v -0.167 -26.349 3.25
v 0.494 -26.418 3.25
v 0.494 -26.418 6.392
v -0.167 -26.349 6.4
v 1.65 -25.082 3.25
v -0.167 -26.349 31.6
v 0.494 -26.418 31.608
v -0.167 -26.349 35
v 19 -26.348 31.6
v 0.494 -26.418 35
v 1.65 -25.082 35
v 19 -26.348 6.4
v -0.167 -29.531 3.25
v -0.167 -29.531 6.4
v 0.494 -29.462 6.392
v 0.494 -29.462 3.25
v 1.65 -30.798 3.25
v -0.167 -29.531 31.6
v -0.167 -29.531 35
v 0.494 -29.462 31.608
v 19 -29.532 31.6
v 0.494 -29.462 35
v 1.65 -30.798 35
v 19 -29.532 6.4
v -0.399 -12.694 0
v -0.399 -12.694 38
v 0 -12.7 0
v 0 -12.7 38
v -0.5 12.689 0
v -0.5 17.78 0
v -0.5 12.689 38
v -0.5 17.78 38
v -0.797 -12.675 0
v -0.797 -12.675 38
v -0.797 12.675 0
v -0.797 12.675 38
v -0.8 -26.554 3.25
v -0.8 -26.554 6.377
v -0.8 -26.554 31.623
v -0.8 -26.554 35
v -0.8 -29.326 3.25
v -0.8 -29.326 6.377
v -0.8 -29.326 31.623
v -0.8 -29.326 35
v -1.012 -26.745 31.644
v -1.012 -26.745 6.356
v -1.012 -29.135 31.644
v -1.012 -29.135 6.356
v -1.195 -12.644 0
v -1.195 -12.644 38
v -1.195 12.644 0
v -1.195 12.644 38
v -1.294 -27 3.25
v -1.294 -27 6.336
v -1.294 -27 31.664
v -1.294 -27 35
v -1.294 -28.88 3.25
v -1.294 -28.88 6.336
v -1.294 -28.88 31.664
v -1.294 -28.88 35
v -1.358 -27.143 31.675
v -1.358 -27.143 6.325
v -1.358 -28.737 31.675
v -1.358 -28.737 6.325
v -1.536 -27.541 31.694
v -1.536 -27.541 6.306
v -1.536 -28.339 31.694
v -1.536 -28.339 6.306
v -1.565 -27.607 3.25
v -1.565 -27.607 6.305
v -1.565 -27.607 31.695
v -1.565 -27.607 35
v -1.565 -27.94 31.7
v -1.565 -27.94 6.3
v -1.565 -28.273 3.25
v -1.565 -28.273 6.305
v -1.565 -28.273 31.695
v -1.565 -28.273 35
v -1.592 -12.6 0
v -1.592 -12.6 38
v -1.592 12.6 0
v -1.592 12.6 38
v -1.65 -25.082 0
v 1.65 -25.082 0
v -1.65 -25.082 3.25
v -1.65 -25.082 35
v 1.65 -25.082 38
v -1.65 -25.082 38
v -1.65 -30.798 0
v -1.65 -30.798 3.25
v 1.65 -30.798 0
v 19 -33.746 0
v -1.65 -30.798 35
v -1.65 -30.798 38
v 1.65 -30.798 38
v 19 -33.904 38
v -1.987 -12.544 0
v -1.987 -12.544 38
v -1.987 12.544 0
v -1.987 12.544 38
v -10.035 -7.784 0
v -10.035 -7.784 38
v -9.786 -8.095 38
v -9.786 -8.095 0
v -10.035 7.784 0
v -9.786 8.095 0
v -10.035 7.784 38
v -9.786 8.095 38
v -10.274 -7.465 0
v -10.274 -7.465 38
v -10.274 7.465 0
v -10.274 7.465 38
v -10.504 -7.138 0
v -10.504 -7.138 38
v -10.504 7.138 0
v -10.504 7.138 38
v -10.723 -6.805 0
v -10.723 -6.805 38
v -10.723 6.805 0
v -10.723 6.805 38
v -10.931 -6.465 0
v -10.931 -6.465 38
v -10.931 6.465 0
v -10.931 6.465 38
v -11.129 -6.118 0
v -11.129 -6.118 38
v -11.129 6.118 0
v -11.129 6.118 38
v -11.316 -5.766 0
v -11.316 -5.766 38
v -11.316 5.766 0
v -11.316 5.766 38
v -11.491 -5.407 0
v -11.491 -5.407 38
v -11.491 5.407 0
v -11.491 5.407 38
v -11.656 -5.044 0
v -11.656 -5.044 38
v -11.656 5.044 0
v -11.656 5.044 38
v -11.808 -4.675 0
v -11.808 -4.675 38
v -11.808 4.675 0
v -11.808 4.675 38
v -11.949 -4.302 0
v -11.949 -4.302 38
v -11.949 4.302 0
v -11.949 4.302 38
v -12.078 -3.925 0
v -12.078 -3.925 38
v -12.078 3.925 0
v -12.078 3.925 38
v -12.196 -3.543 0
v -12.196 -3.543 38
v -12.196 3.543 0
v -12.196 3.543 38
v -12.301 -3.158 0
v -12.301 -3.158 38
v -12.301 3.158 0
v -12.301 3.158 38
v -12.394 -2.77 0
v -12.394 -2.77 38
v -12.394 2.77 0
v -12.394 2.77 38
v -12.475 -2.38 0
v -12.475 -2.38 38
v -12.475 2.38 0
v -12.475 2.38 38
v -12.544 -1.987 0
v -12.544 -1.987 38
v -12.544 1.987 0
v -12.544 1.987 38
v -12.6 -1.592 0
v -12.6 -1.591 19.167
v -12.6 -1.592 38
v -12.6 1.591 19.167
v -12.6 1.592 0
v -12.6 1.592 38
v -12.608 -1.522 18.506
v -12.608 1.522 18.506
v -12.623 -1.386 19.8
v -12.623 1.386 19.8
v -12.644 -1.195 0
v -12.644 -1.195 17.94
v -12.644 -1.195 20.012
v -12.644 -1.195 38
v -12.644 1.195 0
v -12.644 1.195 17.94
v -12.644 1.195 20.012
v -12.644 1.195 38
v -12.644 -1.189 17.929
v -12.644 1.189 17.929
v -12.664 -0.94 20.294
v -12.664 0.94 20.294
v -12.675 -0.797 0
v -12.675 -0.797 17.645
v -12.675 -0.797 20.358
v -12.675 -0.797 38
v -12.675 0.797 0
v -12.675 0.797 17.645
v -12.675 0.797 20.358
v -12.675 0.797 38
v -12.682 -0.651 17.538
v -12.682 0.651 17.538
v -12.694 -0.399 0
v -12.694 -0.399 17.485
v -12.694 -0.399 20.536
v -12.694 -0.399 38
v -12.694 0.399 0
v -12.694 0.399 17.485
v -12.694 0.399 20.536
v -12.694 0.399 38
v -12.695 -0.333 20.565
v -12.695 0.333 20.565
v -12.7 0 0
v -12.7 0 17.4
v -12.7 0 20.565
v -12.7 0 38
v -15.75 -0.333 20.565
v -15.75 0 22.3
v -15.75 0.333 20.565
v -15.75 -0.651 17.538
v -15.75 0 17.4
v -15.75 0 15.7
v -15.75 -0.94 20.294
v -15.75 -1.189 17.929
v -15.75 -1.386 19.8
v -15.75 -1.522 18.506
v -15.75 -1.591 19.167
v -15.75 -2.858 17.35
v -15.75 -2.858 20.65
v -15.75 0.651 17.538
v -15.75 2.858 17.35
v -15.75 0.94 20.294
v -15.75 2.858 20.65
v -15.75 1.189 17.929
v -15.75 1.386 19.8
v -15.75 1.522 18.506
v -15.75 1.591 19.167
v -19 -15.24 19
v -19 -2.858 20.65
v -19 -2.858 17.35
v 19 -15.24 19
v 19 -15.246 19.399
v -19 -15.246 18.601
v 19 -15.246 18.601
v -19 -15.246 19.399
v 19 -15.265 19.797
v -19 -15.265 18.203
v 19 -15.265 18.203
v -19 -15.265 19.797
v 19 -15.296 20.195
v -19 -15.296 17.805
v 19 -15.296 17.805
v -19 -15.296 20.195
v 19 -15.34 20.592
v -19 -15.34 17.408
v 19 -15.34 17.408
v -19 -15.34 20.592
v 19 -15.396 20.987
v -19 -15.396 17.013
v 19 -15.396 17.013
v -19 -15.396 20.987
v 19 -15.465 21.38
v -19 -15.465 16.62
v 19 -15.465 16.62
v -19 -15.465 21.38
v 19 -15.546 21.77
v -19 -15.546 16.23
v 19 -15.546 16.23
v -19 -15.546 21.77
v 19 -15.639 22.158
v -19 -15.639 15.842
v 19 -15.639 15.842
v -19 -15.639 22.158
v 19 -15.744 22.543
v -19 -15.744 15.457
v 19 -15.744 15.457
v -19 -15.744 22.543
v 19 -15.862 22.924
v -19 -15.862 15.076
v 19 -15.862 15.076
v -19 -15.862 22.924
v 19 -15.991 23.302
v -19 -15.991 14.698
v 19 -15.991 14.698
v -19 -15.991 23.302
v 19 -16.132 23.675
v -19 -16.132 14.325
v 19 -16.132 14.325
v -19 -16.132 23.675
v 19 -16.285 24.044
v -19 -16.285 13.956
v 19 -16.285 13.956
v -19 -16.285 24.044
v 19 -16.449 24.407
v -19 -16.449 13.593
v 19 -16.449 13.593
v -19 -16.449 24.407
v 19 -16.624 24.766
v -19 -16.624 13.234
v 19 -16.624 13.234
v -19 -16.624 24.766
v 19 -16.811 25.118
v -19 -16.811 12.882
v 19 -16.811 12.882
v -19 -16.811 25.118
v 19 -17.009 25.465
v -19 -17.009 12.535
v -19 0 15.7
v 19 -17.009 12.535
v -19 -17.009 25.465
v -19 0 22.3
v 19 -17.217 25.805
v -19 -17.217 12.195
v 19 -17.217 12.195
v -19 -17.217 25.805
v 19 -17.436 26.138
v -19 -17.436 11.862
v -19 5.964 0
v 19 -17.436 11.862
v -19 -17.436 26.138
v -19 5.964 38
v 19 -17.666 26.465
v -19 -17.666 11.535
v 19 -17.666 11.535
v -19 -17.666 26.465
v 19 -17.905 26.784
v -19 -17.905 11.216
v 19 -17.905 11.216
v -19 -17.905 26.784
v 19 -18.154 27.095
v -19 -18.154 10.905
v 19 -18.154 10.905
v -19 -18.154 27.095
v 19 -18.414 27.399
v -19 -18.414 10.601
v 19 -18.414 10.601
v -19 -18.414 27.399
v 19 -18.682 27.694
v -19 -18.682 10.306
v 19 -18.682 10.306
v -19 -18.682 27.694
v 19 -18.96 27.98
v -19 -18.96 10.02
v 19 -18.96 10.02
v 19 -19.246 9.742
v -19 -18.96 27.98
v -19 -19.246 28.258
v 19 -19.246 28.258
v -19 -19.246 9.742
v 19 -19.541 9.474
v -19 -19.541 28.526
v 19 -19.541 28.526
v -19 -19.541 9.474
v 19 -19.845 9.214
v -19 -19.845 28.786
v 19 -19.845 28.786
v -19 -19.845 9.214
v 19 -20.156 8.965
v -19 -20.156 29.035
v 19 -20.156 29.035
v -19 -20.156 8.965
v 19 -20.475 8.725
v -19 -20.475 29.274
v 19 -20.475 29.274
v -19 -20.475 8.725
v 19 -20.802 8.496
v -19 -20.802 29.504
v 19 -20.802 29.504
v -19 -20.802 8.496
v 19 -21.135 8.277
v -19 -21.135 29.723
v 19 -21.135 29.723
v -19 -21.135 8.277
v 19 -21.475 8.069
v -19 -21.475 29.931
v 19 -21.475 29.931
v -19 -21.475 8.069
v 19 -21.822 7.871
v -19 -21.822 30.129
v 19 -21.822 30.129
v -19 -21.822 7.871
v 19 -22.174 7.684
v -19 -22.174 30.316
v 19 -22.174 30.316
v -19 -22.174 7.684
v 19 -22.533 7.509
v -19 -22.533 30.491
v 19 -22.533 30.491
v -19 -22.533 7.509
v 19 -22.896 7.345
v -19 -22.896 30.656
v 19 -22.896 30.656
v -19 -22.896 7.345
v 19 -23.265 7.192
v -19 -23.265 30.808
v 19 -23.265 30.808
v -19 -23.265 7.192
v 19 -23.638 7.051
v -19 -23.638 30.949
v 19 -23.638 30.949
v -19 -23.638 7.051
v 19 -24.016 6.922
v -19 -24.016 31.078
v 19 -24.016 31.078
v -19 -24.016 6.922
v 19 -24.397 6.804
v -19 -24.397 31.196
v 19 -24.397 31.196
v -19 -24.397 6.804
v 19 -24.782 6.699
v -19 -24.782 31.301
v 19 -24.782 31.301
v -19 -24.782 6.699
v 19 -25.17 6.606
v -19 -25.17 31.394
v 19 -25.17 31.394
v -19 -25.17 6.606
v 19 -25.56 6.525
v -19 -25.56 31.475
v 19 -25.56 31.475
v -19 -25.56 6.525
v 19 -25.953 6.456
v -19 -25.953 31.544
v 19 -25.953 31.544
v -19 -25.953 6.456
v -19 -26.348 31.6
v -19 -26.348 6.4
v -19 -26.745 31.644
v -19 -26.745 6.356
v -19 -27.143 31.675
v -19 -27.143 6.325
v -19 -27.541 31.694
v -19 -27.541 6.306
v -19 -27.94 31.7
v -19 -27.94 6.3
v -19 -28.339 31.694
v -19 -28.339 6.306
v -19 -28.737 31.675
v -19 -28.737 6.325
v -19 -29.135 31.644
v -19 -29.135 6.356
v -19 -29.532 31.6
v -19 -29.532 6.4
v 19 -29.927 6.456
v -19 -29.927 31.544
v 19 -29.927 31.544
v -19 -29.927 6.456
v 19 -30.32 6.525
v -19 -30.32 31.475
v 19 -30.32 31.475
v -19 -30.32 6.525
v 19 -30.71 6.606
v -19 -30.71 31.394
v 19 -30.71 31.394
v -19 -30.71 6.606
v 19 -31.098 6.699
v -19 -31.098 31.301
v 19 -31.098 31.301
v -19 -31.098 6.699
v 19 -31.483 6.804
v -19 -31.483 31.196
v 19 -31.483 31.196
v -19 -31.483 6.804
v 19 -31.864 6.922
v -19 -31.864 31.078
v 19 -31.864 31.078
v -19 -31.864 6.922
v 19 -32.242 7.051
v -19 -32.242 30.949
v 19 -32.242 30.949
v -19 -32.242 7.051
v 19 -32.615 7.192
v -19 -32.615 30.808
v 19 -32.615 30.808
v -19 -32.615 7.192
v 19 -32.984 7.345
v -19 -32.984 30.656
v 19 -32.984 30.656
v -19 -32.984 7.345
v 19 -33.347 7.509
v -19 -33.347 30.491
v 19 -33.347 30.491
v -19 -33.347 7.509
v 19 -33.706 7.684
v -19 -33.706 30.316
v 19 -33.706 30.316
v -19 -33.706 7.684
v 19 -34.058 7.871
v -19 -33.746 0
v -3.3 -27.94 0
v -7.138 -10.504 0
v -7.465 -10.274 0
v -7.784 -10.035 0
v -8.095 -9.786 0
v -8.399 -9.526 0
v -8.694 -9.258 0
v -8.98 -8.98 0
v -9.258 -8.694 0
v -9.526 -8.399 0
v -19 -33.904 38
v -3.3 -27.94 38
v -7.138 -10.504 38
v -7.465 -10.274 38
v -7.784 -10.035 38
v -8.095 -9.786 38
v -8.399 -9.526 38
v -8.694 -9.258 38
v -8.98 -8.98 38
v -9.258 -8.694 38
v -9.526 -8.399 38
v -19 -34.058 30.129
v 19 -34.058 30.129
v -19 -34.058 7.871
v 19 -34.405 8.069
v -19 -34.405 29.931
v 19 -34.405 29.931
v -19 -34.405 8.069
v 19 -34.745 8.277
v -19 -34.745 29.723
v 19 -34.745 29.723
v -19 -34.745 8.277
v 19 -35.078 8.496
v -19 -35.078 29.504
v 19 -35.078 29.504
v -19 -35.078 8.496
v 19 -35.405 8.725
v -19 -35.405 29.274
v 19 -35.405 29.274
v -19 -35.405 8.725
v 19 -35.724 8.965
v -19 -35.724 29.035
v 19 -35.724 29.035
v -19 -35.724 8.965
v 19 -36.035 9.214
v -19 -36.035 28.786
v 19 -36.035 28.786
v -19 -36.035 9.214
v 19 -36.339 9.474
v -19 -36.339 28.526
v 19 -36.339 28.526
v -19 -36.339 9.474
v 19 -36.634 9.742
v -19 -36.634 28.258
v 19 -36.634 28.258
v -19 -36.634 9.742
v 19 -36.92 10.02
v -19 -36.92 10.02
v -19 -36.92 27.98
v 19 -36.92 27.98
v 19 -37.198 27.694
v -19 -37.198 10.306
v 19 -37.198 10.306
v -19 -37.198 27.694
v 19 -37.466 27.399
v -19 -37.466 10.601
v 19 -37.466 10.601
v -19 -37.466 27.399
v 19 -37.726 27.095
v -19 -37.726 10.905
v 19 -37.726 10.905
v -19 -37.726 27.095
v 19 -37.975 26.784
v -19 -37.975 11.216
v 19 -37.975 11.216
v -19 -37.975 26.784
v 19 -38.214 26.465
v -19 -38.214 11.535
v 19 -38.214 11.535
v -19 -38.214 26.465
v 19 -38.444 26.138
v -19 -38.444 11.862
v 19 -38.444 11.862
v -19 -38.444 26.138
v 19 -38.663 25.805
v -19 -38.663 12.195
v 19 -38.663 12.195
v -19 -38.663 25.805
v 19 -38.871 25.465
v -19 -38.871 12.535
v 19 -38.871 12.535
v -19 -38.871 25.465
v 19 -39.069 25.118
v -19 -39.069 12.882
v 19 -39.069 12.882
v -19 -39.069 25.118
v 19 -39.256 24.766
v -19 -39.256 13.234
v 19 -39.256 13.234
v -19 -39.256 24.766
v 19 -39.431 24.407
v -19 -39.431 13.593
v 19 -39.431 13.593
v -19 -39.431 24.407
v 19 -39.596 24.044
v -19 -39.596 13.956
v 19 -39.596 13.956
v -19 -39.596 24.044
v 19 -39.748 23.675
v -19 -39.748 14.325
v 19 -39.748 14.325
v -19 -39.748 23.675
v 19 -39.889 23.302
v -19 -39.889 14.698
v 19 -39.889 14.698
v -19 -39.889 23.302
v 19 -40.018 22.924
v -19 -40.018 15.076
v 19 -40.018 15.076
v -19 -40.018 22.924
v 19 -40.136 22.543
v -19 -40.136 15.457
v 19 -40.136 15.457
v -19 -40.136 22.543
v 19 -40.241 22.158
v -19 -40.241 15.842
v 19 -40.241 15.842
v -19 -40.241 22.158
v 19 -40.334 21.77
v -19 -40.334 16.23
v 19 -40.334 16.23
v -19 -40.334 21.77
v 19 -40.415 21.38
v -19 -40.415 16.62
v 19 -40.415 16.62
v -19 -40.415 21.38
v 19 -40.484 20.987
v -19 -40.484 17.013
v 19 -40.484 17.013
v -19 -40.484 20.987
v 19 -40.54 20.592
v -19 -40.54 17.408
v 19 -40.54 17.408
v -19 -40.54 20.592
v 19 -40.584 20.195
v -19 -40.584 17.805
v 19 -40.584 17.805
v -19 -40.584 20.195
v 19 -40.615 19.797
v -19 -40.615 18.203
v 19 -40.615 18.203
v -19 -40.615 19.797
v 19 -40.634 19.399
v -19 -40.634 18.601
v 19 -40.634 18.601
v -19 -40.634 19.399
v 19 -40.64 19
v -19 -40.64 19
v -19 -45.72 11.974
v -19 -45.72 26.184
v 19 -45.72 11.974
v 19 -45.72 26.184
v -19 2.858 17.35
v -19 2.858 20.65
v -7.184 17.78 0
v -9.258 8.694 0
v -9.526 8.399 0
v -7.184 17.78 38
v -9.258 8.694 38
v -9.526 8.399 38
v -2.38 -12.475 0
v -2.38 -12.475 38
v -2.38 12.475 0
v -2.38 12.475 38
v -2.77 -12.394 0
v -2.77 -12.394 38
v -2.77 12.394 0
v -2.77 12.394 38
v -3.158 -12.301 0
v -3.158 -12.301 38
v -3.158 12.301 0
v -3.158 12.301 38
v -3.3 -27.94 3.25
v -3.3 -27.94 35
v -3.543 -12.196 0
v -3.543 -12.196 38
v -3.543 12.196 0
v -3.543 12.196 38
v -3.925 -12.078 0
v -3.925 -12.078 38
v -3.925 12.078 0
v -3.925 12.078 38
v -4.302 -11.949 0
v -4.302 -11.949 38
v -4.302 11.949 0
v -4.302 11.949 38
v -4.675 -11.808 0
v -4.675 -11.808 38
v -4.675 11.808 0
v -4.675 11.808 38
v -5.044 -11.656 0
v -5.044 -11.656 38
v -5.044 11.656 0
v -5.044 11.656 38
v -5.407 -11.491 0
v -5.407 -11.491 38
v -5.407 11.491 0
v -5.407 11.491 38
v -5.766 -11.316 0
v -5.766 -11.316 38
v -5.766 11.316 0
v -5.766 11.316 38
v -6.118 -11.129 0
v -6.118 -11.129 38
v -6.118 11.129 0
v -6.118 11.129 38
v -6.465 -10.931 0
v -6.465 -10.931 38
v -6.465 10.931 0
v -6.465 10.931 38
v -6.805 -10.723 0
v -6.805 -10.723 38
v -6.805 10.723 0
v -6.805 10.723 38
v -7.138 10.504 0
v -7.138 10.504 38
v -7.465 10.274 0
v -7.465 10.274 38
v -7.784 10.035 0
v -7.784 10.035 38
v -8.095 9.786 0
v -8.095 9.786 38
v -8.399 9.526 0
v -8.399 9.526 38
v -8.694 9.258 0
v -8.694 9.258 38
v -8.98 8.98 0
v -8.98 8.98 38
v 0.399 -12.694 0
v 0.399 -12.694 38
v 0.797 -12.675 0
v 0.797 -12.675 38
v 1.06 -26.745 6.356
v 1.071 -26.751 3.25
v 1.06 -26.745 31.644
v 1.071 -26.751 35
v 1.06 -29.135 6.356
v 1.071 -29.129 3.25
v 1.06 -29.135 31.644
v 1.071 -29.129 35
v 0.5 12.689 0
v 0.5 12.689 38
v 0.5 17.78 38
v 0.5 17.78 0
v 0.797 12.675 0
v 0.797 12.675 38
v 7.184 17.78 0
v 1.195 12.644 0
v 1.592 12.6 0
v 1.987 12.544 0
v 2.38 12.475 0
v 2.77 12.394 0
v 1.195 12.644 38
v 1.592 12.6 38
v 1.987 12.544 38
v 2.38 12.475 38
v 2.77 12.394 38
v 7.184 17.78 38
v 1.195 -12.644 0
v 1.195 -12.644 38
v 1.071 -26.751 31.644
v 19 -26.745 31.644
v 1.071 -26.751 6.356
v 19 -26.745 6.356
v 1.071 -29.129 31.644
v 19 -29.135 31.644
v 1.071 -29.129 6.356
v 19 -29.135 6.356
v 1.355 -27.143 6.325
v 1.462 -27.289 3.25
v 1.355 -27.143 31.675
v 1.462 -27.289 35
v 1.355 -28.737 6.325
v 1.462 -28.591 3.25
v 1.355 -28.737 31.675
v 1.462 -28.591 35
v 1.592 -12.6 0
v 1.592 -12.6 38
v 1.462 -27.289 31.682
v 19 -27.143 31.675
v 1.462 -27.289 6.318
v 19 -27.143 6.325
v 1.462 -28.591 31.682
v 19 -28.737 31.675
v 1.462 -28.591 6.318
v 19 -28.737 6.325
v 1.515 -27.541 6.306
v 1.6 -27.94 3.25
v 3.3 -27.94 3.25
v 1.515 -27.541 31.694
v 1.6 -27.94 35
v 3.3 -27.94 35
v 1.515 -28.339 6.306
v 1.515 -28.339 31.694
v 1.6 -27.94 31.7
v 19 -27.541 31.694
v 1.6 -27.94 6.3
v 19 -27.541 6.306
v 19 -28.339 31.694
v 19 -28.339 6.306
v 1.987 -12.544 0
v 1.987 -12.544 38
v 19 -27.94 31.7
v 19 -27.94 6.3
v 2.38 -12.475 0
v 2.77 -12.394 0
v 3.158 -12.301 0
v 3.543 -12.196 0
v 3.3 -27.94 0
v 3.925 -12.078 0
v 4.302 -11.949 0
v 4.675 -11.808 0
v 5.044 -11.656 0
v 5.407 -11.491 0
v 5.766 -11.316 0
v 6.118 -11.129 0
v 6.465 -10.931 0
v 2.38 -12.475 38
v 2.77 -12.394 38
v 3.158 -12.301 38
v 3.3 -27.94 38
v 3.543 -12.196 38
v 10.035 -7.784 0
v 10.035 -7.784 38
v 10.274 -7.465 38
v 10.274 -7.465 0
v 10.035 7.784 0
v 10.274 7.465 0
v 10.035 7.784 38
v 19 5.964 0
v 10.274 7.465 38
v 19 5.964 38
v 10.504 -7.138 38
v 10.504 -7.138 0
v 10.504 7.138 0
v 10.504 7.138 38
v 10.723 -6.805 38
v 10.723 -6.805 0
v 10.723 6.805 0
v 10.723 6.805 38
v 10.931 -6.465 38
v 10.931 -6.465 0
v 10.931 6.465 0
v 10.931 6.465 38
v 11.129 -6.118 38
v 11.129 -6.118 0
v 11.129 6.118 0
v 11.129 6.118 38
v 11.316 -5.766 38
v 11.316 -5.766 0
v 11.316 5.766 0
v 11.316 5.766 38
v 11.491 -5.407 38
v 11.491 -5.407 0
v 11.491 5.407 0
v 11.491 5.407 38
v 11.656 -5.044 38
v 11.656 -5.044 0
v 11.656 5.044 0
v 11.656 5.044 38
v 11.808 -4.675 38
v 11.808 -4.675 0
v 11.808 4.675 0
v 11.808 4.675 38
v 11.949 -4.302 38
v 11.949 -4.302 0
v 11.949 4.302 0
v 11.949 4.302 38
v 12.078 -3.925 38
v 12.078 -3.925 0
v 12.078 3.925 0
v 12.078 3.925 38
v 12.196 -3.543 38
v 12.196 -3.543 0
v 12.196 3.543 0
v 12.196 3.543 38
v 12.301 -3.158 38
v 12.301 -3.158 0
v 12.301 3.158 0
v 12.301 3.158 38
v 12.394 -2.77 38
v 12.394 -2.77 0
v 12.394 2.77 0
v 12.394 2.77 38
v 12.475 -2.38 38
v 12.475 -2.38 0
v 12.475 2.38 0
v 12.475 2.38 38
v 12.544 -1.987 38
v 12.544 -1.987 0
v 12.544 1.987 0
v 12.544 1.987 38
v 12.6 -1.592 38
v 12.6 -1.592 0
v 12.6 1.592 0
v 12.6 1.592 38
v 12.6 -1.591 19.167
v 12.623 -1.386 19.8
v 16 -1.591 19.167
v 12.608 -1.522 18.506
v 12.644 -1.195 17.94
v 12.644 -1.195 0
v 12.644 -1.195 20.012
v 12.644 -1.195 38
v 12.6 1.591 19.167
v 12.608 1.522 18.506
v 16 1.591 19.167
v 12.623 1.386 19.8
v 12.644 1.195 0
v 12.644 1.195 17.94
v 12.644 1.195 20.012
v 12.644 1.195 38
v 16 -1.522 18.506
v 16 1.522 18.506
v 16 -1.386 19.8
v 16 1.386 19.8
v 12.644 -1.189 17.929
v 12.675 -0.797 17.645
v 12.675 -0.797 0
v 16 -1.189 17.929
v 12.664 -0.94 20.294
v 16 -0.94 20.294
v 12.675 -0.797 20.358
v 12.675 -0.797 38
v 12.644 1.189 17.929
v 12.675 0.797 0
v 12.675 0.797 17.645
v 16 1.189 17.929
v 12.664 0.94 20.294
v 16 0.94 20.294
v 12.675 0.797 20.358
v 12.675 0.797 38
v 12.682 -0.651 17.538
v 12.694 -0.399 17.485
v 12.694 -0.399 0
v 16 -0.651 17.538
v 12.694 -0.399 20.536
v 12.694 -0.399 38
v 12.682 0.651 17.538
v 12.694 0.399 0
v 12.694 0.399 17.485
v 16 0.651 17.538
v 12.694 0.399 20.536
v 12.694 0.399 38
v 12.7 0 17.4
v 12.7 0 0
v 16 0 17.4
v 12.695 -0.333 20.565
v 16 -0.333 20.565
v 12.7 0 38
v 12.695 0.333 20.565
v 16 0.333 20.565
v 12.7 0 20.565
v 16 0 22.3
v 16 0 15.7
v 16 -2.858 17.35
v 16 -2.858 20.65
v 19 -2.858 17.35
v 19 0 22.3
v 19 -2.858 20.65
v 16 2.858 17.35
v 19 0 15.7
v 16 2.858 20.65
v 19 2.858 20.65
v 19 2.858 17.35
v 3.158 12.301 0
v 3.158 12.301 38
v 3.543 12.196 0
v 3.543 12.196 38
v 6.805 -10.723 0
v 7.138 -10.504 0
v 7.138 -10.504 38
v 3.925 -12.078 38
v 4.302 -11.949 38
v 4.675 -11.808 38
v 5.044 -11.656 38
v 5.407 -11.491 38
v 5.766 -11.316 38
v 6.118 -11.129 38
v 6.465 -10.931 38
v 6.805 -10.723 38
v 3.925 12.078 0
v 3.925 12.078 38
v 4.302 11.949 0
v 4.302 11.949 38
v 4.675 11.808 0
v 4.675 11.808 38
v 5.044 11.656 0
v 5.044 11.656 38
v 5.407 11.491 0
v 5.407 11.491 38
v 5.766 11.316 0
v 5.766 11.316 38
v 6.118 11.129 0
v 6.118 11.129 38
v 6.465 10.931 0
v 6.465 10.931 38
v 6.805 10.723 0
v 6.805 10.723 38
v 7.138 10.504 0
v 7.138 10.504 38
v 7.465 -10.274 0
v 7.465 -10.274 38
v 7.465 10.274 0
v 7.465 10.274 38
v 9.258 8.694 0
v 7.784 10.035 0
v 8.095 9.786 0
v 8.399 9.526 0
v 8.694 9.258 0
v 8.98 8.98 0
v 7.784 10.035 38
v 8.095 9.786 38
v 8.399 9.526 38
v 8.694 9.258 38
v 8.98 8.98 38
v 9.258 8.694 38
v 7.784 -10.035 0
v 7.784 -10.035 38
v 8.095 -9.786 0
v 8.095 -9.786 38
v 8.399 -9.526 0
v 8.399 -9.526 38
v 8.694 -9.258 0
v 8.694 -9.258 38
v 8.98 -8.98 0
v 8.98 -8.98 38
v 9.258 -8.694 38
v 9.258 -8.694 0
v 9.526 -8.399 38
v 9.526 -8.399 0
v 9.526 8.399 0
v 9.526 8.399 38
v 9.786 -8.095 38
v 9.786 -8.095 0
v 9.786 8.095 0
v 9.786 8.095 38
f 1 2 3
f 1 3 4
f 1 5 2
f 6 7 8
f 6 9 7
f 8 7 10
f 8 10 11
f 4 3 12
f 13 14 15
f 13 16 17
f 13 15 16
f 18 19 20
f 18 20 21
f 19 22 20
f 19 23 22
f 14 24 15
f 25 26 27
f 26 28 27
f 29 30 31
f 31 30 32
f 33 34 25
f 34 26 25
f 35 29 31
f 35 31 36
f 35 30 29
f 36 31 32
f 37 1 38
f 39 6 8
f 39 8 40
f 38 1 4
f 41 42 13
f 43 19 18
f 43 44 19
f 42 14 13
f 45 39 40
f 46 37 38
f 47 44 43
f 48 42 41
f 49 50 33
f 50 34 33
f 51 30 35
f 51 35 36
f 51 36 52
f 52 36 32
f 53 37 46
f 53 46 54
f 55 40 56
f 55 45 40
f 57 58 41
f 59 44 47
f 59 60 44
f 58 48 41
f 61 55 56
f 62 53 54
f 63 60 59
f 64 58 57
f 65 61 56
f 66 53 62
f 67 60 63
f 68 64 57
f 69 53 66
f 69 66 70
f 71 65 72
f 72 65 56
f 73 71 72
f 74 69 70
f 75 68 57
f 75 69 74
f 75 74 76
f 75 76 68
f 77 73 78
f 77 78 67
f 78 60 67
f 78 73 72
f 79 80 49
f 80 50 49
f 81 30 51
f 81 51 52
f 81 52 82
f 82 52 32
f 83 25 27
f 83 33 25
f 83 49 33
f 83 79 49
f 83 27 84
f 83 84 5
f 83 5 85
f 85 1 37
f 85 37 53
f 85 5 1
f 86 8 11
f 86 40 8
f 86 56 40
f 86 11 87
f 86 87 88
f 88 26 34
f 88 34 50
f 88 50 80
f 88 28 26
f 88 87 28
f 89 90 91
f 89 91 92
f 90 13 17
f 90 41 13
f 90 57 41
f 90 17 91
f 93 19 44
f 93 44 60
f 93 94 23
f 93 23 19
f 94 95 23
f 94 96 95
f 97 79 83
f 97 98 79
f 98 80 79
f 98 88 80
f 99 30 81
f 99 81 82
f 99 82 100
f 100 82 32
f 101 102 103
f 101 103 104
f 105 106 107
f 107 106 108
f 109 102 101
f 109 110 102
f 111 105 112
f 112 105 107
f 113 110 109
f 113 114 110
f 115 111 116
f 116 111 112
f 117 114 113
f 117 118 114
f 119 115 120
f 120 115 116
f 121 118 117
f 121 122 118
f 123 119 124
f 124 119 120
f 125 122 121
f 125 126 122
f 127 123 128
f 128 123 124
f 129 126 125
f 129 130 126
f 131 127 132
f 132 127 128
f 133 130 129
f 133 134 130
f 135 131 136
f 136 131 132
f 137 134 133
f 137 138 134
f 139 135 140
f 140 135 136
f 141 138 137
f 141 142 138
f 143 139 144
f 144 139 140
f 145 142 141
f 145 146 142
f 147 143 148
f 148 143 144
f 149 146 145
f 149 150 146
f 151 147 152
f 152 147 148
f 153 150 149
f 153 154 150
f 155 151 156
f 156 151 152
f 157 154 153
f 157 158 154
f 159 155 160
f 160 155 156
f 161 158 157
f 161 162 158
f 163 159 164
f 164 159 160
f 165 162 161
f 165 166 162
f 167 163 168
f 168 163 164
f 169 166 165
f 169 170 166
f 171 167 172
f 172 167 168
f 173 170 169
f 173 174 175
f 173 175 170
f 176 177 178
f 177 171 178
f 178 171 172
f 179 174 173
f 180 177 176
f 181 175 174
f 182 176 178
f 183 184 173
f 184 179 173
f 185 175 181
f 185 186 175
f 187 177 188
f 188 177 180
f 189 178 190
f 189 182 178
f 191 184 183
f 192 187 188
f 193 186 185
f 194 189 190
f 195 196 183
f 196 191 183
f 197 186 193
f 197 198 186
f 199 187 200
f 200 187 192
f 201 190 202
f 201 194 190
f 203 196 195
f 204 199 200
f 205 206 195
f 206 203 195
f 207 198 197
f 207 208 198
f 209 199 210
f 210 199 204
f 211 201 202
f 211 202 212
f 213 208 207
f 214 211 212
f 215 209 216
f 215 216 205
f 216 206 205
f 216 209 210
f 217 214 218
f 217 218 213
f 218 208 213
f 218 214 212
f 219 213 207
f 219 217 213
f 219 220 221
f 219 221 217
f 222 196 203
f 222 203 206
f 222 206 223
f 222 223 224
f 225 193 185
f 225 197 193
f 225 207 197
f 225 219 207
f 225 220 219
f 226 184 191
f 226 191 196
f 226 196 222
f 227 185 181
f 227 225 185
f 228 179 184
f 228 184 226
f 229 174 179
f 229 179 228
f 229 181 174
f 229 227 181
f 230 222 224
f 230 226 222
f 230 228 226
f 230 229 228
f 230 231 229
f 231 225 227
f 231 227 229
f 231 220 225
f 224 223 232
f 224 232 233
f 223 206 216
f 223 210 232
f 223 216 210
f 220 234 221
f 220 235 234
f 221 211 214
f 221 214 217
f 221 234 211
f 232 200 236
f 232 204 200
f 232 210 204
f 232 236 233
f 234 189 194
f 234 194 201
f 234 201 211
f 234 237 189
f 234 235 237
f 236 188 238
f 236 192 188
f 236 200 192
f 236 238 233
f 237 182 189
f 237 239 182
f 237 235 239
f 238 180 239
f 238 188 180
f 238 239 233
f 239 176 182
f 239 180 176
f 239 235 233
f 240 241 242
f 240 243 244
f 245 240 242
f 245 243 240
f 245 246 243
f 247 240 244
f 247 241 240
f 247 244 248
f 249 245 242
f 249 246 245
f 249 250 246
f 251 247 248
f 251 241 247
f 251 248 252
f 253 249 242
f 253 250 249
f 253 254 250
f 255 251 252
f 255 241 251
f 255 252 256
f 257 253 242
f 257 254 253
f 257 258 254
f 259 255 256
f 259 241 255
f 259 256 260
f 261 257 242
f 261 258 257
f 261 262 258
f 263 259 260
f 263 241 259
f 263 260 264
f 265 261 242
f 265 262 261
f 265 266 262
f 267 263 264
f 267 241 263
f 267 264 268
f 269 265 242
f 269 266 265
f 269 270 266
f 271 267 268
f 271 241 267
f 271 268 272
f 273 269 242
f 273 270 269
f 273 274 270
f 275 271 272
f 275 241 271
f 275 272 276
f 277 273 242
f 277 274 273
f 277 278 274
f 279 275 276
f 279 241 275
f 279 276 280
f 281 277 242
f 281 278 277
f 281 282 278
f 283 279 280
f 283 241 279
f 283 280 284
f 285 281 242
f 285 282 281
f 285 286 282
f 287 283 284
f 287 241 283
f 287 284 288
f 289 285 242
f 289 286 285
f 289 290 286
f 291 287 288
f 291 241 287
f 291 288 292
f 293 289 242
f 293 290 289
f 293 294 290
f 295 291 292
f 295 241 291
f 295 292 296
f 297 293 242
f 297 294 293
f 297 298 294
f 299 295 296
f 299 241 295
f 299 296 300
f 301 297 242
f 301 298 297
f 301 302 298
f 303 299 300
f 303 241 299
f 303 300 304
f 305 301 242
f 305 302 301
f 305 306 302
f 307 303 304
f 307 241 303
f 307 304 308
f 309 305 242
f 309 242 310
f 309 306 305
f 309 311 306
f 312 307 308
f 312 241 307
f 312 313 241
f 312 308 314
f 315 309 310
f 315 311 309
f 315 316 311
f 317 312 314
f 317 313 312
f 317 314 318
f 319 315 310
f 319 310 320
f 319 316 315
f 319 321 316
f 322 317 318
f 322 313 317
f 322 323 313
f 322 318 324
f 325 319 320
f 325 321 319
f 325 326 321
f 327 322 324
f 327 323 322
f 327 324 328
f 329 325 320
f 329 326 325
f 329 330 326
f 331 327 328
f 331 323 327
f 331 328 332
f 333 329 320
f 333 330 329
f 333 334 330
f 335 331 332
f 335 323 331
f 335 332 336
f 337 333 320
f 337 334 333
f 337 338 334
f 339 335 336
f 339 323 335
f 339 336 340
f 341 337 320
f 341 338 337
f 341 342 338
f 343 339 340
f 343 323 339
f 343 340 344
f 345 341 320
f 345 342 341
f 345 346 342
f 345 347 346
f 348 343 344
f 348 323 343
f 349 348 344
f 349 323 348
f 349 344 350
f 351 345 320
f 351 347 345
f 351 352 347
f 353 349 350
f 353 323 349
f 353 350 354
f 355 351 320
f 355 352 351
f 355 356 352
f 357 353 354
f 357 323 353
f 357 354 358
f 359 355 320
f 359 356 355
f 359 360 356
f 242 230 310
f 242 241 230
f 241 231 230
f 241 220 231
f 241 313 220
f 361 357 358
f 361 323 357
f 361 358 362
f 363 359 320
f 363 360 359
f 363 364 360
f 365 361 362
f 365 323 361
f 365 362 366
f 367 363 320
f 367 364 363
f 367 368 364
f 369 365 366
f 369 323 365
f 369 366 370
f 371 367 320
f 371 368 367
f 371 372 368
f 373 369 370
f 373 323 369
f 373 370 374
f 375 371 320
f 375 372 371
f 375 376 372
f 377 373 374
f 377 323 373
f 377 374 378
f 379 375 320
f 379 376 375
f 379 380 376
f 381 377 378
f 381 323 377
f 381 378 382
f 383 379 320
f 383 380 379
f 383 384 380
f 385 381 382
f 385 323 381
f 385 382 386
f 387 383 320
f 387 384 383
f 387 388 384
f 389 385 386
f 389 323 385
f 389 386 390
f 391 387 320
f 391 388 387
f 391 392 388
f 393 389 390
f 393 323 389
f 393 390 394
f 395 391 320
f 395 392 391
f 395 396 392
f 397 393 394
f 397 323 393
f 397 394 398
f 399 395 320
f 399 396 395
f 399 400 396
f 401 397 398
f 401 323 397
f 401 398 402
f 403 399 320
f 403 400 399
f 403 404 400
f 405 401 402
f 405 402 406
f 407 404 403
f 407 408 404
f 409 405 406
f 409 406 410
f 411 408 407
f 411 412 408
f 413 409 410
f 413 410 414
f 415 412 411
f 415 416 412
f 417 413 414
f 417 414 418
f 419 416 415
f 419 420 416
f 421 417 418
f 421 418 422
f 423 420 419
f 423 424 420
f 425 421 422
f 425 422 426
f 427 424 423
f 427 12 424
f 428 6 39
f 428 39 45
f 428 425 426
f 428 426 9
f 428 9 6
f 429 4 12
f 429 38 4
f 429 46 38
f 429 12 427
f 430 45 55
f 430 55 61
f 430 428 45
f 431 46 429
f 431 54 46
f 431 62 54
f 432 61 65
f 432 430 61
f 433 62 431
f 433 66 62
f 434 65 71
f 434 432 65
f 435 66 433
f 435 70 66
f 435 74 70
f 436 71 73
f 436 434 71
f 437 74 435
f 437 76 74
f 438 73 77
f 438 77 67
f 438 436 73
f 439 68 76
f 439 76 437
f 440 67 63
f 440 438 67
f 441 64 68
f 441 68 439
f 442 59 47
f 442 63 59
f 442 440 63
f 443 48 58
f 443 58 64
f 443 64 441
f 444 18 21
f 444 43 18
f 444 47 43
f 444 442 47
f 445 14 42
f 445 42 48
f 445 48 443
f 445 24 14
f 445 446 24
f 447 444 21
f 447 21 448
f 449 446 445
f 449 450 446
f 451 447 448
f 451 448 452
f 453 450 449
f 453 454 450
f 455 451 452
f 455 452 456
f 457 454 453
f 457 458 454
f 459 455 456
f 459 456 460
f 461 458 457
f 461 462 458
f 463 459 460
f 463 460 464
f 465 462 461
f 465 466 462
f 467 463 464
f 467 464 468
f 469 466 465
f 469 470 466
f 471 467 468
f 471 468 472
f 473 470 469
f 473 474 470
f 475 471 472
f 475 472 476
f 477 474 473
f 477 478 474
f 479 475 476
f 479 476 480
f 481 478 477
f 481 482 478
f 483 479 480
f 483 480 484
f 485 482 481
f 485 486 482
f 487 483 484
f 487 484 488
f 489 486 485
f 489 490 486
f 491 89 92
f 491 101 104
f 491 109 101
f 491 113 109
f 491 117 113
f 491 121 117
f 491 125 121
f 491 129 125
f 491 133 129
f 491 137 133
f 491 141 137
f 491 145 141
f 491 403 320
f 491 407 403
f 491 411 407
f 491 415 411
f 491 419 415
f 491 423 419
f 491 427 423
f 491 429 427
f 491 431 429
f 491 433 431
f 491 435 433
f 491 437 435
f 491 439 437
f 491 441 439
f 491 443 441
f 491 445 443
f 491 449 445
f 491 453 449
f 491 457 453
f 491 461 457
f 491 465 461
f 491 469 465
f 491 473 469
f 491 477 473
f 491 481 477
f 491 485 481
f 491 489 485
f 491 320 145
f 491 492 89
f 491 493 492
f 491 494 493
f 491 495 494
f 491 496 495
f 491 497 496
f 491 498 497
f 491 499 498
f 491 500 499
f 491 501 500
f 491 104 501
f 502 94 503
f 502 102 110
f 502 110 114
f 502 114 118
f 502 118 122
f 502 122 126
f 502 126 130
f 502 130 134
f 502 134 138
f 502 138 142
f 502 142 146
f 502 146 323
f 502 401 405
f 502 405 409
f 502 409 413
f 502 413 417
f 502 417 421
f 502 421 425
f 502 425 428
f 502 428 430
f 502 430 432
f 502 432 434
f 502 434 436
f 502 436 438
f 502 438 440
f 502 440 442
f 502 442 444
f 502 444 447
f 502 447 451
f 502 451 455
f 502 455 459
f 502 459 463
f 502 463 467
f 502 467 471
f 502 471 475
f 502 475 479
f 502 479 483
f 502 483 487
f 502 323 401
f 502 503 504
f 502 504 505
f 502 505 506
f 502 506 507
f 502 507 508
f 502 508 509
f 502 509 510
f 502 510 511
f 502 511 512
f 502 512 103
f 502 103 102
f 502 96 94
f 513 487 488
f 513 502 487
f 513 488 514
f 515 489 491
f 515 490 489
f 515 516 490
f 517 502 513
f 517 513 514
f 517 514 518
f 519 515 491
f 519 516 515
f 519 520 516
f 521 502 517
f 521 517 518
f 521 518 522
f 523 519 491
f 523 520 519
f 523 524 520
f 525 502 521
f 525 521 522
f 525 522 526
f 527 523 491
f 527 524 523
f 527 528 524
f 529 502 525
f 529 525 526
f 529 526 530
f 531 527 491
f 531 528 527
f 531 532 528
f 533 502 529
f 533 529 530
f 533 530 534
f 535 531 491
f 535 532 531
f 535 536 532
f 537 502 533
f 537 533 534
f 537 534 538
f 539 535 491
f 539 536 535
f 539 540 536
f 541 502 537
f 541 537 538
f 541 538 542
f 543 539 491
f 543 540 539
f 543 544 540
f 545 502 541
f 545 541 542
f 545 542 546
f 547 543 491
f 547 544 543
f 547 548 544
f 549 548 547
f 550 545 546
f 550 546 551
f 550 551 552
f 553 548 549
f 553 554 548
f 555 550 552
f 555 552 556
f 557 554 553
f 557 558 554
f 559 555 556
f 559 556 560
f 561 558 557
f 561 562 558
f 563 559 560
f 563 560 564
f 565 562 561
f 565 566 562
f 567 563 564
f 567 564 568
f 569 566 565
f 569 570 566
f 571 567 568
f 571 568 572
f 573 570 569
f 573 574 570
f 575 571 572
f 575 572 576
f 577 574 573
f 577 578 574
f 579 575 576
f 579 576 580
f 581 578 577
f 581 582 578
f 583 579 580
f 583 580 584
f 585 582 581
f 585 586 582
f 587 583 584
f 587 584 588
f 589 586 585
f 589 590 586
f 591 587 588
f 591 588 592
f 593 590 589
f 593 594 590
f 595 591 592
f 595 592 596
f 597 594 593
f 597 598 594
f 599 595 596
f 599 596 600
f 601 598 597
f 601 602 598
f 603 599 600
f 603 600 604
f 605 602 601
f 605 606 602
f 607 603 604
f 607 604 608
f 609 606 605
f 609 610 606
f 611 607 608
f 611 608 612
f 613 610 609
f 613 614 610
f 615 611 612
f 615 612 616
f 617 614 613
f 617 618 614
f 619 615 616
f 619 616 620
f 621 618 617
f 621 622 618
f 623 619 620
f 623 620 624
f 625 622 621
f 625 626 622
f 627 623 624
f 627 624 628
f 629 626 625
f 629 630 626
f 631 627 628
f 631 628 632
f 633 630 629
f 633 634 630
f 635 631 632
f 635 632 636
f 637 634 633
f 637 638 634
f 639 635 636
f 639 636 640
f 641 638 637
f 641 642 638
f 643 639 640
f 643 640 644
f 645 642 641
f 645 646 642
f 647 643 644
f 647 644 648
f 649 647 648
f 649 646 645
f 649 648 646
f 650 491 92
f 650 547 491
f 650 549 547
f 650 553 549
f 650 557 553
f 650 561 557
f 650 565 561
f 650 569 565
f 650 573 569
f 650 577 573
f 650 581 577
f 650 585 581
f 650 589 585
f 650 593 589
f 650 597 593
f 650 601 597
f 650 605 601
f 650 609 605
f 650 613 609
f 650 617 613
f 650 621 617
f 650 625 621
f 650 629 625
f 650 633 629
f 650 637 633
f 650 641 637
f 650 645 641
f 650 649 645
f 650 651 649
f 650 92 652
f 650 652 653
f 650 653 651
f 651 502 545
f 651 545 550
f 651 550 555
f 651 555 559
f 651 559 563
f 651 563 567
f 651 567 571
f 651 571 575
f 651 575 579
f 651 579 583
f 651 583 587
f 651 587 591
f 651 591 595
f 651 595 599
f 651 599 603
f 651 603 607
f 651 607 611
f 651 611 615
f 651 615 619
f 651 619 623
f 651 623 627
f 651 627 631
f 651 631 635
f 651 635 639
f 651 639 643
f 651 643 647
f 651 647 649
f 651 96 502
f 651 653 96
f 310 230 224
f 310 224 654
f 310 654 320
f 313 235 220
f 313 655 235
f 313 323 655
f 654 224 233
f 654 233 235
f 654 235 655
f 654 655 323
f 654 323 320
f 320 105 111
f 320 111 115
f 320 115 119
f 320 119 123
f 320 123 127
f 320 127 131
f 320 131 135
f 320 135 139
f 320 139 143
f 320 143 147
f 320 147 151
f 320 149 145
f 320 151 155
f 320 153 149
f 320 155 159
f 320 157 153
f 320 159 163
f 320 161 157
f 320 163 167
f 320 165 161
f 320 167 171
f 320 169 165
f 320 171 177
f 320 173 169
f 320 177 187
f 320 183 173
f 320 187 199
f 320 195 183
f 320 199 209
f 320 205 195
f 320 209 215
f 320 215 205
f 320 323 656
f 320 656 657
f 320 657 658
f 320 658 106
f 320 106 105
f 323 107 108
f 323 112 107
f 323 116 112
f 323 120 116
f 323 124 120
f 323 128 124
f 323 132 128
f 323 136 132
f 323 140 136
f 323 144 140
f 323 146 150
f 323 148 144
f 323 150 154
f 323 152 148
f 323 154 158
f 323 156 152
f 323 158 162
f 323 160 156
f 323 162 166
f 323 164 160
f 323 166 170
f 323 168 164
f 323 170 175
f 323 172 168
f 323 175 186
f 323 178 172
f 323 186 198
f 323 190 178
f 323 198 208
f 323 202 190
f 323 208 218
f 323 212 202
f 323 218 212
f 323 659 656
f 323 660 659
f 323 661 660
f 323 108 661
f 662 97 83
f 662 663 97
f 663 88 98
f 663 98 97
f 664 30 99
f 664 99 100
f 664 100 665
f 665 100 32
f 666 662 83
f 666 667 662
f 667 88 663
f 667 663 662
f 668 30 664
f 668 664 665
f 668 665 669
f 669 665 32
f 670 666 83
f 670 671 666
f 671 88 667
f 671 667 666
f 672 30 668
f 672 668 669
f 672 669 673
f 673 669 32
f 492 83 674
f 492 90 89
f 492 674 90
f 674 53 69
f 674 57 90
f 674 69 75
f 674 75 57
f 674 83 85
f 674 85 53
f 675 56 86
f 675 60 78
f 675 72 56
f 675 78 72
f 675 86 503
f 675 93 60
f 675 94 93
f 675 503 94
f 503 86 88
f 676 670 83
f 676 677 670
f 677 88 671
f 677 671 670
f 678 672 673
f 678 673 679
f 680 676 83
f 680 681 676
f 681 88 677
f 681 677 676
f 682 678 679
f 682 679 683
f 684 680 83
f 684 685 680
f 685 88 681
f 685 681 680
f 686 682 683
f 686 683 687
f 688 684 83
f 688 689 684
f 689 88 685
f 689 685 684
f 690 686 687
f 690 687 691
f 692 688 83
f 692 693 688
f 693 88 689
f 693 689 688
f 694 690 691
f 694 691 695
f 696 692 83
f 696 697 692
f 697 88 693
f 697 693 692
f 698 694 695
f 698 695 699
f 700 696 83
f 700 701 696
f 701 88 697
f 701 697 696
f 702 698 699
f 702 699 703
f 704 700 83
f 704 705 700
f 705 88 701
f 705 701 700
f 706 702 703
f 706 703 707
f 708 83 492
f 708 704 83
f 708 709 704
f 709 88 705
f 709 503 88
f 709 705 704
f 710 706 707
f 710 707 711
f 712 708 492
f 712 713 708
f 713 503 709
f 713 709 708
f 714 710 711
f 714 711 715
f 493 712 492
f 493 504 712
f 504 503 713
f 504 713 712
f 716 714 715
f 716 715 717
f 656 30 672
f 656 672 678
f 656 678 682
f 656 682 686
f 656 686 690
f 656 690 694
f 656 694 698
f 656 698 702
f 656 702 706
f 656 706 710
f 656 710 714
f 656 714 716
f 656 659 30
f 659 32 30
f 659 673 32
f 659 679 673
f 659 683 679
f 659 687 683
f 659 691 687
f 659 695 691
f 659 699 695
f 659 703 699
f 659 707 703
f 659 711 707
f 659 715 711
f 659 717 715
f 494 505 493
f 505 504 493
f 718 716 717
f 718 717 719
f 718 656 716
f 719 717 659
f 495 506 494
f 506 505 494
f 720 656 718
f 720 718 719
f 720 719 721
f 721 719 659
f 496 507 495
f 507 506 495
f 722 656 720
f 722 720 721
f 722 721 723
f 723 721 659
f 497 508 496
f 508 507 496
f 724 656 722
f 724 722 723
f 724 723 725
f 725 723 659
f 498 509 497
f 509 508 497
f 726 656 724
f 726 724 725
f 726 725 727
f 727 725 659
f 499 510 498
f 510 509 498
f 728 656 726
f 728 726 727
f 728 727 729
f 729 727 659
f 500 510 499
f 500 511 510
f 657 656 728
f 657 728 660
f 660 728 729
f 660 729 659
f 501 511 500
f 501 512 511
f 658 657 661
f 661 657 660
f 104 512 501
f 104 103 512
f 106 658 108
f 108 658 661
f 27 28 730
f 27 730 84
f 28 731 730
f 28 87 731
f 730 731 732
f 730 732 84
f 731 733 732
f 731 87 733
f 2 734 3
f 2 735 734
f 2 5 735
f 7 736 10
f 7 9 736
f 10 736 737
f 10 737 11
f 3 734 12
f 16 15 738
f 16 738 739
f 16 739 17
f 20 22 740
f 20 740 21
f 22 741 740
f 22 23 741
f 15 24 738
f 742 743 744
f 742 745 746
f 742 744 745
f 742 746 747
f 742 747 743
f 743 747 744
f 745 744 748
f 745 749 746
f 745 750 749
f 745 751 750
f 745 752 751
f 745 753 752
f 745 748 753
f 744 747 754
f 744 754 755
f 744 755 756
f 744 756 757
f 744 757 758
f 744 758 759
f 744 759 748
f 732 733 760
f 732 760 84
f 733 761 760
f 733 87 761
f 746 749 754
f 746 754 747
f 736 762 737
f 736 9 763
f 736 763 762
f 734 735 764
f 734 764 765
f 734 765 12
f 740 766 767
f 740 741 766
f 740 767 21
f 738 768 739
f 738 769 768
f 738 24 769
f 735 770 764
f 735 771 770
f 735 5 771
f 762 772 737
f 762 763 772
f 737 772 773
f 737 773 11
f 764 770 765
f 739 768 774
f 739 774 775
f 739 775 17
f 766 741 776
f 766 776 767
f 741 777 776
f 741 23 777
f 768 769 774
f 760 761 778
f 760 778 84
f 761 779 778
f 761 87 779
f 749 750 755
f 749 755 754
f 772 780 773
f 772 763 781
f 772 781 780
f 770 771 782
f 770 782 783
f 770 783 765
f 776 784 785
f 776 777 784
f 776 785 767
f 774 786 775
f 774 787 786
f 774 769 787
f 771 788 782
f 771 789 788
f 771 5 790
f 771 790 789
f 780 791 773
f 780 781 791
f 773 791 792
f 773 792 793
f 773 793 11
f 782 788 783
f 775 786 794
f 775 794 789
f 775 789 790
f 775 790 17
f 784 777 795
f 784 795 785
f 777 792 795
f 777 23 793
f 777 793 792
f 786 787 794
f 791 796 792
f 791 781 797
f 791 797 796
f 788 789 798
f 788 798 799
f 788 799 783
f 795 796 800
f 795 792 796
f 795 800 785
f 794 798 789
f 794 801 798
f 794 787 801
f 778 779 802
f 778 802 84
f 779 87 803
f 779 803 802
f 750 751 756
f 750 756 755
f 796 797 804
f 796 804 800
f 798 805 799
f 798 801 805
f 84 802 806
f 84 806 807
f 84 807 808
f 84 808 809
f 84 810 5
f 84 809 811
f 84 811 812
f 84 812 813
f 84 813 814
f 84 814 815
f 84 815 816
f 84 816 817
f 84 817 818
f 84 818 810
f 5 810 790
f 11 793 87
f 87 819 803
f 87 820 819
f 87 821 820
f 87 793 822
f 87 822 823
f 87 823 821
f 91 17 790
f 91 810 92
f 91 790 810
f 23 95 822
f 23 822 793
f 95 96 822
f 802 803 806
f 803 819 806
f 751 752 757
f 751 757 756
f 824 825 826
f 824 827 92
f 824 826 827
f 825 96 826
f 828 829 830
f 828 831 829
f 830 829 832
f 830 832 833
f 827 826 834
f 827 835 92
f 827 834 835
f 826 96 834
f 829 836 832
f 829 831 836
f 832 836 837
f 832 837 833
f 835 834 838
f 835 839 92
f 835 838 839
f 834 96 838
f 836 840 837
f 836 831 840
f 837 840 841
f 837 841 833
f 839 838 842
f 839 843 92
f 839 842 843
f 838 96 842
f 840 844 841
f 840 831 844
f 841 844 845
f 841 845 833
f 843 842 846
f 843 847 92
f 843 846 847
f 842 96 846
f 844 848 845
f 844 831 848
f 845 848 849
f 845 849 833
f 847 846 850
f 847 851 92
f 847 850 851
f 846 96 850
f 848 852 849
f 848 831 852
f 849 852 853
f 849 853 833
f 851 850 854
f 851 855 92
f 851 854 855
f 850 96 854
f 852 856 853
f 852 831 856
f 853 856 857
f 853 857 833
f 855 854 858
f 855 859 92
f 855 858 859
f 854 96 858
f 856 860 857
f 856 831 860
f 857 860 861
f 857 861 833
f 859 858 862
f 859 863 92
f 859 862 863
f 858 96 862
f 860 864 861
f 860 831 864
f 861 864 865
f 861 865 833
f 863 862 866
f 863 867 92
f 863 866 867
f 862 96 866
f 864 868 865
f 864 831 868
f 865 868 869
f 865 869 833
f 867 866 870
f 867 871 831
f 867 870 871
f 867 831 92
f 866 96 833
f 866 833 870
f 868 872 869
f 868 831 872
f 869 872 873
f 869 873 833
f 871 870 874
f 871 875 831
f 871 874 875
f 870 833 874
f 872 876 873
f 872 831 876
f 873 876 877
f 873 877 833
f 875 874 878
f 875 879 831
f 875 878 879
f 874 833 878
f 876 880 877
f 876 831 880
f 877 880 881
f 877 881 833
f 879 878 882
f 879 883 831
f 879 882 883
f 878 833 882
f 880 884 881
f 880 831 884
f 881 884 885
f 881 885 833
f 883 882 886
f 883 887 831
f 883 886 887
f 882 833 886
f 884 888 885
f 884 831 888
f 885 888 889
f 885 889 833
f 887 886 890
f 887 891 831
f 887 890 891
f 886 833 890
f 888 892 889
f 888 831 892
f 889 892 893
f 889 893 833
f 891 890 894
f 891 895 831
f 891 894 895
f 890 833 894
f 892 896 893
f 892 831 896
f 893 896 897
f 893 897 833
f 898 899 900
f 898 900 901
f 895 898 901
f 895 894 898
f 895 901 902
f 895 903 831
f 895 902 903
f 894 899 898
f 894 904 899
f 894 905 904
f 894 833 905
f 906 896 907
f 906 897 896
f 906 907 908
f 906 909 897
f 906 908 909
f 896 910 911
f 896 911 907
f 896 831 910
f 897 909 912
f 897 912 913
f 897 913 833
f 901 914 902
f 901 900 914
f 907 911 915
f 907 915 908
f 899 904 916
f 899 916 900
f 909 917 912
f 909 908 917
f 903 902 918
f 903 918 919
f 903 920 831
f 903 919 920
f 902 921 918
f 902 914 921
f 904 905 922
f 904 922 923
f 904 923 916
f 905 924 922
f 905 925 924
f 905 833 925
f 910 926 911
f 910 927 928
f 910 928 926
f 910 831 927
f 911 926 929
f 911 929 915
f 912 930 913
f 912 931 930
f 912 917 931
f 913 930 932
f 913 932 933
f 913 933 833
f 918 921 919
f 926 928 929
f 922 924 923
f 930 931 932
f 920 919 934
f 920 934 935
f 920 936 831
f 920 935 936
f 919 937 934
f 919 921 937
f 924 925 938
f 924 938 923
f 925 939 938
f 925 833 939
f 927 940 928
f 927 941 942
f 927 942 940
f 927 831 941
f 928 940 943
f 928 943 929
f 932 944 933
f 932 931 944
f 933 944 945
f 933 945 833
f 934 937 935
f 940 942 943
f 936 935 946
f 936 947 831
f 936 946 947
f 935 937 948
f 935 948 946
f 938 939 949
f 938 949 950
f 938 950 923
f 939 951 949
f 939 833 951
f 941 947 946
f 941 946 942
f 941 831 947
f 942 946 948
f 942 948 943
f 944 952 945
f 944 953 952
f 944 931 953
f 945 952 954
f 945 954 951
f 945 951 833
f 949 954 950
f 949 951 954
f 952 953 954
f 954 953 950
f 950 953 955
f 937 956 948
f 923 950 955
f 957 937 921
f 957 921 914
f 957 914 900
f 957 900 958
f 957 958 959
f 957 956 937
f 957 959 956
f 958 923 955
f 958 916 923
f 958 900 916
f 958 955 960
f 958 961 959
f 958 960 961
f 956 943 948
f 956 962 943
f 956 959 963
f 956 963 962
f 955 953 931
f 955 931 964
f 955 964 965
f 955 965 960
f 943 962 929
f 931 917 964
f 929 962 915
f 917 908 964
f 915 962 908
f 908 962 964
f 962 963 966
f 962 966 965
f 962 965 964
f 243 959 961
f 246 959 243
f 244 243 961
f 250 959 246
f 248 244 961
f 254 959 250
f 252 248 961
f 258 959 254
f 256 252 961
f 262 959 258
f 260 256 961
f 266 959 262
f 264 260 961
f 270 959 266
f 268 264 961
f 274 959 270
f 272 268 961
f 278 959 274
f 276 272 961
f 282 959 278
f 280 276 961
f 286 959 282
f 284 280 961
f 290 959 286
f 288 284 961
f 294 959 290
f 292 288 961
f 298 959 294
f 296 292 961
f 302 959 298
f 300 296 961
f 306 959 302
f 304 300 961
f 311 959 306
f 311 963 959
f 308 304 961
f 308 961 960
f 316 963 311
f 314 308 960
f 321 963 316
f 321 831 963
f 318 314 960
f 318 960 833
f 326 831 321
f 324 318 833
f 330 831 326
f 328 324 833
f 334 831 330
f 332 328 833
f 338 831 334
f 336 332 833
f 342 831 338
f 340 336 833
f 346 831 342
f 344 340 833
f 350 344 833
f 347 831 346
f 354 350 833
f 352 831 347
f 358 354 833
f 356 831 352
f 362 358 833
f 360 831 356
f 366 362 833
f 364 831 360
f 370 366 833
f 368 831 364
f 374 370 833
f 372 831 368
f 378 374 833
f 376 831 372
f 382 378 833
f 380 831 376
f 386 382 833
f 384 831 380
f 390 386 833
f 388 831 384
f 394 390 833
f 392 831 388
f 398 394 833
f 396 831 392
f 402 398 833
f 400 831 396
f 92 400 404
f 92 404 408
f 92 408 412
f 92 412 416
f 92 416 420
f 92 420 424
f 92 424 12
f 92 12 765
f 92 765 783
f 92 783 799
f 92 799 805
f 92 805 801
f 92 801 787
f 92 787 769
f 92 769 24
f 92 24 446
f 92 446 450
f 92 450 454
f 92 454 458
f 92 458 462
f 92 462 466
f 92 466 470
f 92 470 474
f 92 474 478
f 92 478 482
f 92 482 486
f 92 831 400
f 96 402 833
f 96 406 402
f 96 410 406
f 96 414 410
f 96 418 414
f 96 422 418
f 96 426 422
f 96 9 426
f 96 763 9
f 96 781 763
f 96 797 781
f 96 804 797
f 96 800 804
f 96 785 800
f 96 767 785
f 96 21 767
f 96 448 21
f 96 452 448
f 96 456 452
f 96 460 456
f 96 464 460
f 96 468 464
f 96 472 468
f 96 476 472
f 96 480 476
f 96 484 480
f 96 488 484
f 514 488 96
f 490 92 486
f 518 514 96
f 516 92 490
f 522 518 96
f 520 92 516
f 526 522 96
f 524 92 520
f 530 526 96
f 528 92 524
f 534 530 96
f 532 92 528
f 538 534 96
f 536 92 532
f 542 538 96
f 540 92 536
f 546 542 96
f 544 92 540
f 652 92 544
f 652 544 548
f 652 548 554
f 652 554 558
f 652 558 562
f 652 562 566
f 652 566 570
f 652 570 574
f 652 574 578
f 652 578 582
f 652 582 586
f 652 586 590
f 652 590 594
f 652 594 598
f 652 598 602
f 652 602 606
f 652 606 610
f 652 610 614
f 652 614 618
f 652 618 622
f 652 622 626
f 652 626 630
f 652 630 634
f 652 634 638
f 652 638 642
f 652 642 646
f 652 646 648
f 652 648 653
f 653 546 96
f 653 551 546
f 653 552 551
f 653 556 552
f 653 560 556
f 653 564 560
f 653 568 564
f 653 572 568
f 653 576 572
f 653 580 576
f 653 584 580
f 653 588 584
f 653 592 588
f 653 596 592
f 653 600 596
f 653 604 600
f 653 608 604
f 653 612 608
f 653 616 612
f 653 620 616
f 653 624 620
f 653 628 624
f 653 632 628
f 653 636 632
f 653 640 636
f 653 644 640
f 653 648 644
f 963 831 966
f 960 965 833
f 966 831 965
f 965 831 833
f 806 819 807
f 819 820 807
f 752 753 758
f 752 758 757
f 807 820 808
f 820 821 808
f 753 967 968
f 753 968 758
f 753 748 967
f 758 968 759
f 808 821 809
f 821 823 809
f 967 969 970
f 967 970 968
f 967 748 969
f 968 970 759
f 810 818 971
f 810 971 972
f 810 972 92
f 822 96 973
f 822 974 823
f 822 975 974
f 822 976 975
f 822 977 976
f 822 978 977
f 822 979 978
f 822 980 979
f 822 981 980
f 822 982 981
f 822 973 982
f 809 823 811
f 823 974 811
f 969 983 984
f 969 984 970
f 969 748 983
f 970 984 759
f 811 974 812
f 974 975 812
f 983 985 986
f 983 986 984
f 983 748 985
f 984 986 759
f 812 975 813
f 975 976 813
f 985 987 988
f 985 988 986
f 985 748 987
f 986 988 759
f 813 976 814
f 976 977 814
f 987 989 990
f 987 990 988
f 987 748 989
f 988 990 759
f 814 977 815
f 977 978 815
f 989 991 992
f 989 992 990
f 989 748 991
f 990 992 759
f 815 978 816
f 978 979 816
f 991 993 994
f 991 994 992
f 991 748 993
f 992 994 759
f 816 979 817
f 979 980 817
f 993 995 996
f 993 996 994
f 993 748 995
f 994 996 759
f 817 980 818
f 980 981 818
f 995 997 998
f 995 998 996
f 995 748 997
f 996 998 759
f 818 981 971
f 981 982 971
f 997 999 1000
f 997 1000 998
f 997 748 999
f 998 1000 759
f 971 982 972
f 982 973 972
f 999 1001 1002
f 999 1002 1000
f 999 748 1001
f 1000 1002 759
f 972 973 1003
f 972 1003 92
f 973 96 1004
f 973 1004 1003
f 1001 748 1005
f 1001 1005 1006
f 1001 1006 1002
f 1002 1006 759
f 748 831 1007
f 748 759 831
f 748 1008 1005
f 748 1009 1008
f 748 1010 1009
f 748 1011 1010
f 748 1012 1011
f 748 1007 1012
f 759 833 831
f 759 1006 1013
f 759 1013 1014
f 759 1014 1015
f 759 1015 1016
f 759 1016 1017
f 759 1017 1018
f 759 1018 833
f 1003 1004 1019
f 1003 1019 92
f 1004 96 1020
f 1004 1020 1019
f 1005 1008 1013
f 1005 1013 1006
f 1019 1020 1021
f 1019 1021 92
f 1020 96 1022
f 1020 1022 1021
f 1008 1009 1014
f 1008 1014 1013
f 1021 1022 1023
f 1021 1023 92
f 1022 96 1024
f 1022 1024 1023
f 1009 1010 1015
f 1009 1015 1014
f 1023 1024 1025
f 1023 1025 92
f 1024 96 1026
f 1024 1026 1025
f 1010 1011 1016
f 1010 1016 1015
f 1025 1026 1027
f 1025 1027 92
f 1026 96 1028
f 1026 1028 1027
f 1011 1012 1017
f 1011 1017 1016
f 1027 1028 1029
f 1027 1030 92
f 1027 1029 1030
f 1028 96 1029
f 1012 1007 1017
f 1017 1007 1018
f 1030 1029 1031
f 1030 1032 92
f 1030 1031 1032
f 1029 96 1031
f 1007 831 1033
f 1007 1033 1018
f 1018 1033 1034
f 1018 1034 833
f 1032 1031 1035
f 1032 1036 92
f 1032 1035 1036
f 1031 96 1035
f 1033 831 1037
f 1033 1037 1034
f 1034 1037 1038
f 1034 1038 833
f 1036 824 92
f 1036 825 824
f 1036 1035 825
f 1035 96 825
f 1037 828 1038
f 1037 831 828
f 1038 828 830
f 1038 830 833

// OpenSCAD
// file: ../666_1004.scad
include <../parameters.scad>
draft = true;

module 666_1004(coupling_wall_thickness, thickness_between_tubes, draft = true){


bevelled_width = main_tube_outer_diameter + 2*coupling_wall_thickness;

    difference(){

        translate([-(coupling_width_666_1004/2), - depth_666_1004 + main_tube_outer_diameter/2 + coupling_wall_thickness,0])
              cube([coupling_width_666_1004,depth_666_1004,height_666_1004]);

        // middle cut
        translate ([-0.5, 0, - global_clearance/2])
            cube ([1,depth_666_1004,height_666_1004 + global_clearance]);

        //tubes
        translate([0,0,- global_clearance/2])
                cylinder(h=height_666_1004 + global_clearance,r = main_tube_outer_diameter/2, $fn= draft ? 50 : 200);

        translate([-coupling_width_666_1004/2 - global_clearance/2, -(main_tube_outer_diameter+thickness_between_tubes),height_666_1004/2])
            rotate([0,90,0])
               cylinder(h=height_666_1004 + global_clearance,r = main_tube_outer_diameter/2, $fn = draft ? 50 : 200);
        
        //bevelled edge
        translate([bevelled_width/2+coupling_wall_thickness/sqrt(2),coupling_wall_thickness/sqrt(2),- global_clearance/2])
            rotate([0,0,45])
                cube([bevelled_width, bevelled_width,height_666_1004 + global_clearance]);
        
        translate([-(bevelled_width/2) - coupling_wall_thickness/sqrt(2),coupling_wall_thickness/sqrt(2),- global_clearance/2])
            rotate([0,0,45])
                cube([bevelled_width, bevelled_width,height_666_1004 + global_clearance]); 
        
        translate([- height_666_1004/2 - global_clearance/2,- main_tube_outer_diameter/2 - thickness_between_tubes - main_tube_outer_diameter - coupling_wall_thickness - (sqrt(2)*bevelled_width)/2 - (main_tube_outer_diameter/sqrt(2))/3 - coupling_wall_thickness/sqrt(2),-coupling_wall_thickness/sqrt(2)])
            rotate([-45,0,0])
                cube([height_666_1004 + global_clearance,bevelled_width,bevelled_width]);
       
        translate([-coupling_width_666_1004/2 - global_clearance/2,- main_tube_outer_diameter/2 - thickness_between_tubes - main_tube_outer_diameter - coupling_wall_thickness - coupling_wall_thickness/sqrt(2),height_666_1004/2 + coupling_wall_thickness/sqrt(2)])  
            rotate([45,0,0])
                cube([coupling_width_666_1004 + global_clearance,height_666_1004,height_666_1004]);  

        //screw
        translate([-coupling_width_666_1004/2 - global_clearance/2,0,height_666_1004/2])
           rotate ([0,90,0])   
                cylinder(h = coupling_width_666_1004 + global_clearance, r = M3_screw_diameter/2, $fn = 15);

        translate ([0,- (main_tube_outer_diameter+thickness_between_tubes),0])
                cylinder (h = height_666_1004, r = M3_screw_diameter/2, $fn = 15);
                
        //nut
        translate([-coupling_width_666_1004/2 - global_clearance/2,0, height_666_1004/2])
            rotate ([0,90,0])
                cylinder (h = M3_screw_head_height + global_clearance, r = M3_nut_diameter/2, $fn = 6);
        
        translate([coupling_width_666_1004/2 - M3_screw_head_height,0,height_666_1004/2])
           rotate ([0,90,0])
                cylinder (h = M3_screw_head_height + global_clearance, r = M3_nut_diameter/2, $fn = 6);

        translate([0, -(main_tube_outer_diameter+thickness_between_tubes),- global_clearance/2])
                cylinder (h = M3_screw_head_height + global_clearance, r = M3_nut_diameter/2, $fn = 6);

        translate([0,-(main_tube_outer_diameter+thickness_between_tubes),height_666_1004 - M3_screw_head_height])
                cylinder (h = M3_screw_head_height + global_clearance, r = M3_nut_diameter/2, $fn = 6);    
    }
}


module 666_1004_drillhelper(coupling_wall_thickness, thickness_between_tubes, draft = true){

       
    difference(){

        translate([-(coupling_width_666_1004/2), -depth_666_1004_drillhelper/4,0])
              cube([coupling_width_666_1004,depth_666_1004_drillhelper/2,height_666_1004]);

        //tubes
        translate([0,0,- global_clearance/2])
                cylinder(h=height_666_1004 + global_clearance,r = main_tube_outer_diameter/2, $fn= draft ? 50 : 200);
        
        //screw
        translate([-coupling_width_666_1004/2 - global_clearance/2,0,height_666_1004/2])
           rotate ([0,90,0])   
                cylinder(h = coupling_width_666_1004 + global_clearance, r = M3_screw_diameter/2, $fn = 15);
                
    }
}


666_1004(coupling_wall_thickness, thickness_between_tubes, draft);


translate([50,0,0])
    666_1004_drillhelper(coupling_wall_thickness, thickness_between_tubes, draft);
// main file
include <../../parameters.scad>

use <../666_1004.scad>

draft = false;

666_1004(coupling_wall_thickness, thickness_between_tubes, draft);
